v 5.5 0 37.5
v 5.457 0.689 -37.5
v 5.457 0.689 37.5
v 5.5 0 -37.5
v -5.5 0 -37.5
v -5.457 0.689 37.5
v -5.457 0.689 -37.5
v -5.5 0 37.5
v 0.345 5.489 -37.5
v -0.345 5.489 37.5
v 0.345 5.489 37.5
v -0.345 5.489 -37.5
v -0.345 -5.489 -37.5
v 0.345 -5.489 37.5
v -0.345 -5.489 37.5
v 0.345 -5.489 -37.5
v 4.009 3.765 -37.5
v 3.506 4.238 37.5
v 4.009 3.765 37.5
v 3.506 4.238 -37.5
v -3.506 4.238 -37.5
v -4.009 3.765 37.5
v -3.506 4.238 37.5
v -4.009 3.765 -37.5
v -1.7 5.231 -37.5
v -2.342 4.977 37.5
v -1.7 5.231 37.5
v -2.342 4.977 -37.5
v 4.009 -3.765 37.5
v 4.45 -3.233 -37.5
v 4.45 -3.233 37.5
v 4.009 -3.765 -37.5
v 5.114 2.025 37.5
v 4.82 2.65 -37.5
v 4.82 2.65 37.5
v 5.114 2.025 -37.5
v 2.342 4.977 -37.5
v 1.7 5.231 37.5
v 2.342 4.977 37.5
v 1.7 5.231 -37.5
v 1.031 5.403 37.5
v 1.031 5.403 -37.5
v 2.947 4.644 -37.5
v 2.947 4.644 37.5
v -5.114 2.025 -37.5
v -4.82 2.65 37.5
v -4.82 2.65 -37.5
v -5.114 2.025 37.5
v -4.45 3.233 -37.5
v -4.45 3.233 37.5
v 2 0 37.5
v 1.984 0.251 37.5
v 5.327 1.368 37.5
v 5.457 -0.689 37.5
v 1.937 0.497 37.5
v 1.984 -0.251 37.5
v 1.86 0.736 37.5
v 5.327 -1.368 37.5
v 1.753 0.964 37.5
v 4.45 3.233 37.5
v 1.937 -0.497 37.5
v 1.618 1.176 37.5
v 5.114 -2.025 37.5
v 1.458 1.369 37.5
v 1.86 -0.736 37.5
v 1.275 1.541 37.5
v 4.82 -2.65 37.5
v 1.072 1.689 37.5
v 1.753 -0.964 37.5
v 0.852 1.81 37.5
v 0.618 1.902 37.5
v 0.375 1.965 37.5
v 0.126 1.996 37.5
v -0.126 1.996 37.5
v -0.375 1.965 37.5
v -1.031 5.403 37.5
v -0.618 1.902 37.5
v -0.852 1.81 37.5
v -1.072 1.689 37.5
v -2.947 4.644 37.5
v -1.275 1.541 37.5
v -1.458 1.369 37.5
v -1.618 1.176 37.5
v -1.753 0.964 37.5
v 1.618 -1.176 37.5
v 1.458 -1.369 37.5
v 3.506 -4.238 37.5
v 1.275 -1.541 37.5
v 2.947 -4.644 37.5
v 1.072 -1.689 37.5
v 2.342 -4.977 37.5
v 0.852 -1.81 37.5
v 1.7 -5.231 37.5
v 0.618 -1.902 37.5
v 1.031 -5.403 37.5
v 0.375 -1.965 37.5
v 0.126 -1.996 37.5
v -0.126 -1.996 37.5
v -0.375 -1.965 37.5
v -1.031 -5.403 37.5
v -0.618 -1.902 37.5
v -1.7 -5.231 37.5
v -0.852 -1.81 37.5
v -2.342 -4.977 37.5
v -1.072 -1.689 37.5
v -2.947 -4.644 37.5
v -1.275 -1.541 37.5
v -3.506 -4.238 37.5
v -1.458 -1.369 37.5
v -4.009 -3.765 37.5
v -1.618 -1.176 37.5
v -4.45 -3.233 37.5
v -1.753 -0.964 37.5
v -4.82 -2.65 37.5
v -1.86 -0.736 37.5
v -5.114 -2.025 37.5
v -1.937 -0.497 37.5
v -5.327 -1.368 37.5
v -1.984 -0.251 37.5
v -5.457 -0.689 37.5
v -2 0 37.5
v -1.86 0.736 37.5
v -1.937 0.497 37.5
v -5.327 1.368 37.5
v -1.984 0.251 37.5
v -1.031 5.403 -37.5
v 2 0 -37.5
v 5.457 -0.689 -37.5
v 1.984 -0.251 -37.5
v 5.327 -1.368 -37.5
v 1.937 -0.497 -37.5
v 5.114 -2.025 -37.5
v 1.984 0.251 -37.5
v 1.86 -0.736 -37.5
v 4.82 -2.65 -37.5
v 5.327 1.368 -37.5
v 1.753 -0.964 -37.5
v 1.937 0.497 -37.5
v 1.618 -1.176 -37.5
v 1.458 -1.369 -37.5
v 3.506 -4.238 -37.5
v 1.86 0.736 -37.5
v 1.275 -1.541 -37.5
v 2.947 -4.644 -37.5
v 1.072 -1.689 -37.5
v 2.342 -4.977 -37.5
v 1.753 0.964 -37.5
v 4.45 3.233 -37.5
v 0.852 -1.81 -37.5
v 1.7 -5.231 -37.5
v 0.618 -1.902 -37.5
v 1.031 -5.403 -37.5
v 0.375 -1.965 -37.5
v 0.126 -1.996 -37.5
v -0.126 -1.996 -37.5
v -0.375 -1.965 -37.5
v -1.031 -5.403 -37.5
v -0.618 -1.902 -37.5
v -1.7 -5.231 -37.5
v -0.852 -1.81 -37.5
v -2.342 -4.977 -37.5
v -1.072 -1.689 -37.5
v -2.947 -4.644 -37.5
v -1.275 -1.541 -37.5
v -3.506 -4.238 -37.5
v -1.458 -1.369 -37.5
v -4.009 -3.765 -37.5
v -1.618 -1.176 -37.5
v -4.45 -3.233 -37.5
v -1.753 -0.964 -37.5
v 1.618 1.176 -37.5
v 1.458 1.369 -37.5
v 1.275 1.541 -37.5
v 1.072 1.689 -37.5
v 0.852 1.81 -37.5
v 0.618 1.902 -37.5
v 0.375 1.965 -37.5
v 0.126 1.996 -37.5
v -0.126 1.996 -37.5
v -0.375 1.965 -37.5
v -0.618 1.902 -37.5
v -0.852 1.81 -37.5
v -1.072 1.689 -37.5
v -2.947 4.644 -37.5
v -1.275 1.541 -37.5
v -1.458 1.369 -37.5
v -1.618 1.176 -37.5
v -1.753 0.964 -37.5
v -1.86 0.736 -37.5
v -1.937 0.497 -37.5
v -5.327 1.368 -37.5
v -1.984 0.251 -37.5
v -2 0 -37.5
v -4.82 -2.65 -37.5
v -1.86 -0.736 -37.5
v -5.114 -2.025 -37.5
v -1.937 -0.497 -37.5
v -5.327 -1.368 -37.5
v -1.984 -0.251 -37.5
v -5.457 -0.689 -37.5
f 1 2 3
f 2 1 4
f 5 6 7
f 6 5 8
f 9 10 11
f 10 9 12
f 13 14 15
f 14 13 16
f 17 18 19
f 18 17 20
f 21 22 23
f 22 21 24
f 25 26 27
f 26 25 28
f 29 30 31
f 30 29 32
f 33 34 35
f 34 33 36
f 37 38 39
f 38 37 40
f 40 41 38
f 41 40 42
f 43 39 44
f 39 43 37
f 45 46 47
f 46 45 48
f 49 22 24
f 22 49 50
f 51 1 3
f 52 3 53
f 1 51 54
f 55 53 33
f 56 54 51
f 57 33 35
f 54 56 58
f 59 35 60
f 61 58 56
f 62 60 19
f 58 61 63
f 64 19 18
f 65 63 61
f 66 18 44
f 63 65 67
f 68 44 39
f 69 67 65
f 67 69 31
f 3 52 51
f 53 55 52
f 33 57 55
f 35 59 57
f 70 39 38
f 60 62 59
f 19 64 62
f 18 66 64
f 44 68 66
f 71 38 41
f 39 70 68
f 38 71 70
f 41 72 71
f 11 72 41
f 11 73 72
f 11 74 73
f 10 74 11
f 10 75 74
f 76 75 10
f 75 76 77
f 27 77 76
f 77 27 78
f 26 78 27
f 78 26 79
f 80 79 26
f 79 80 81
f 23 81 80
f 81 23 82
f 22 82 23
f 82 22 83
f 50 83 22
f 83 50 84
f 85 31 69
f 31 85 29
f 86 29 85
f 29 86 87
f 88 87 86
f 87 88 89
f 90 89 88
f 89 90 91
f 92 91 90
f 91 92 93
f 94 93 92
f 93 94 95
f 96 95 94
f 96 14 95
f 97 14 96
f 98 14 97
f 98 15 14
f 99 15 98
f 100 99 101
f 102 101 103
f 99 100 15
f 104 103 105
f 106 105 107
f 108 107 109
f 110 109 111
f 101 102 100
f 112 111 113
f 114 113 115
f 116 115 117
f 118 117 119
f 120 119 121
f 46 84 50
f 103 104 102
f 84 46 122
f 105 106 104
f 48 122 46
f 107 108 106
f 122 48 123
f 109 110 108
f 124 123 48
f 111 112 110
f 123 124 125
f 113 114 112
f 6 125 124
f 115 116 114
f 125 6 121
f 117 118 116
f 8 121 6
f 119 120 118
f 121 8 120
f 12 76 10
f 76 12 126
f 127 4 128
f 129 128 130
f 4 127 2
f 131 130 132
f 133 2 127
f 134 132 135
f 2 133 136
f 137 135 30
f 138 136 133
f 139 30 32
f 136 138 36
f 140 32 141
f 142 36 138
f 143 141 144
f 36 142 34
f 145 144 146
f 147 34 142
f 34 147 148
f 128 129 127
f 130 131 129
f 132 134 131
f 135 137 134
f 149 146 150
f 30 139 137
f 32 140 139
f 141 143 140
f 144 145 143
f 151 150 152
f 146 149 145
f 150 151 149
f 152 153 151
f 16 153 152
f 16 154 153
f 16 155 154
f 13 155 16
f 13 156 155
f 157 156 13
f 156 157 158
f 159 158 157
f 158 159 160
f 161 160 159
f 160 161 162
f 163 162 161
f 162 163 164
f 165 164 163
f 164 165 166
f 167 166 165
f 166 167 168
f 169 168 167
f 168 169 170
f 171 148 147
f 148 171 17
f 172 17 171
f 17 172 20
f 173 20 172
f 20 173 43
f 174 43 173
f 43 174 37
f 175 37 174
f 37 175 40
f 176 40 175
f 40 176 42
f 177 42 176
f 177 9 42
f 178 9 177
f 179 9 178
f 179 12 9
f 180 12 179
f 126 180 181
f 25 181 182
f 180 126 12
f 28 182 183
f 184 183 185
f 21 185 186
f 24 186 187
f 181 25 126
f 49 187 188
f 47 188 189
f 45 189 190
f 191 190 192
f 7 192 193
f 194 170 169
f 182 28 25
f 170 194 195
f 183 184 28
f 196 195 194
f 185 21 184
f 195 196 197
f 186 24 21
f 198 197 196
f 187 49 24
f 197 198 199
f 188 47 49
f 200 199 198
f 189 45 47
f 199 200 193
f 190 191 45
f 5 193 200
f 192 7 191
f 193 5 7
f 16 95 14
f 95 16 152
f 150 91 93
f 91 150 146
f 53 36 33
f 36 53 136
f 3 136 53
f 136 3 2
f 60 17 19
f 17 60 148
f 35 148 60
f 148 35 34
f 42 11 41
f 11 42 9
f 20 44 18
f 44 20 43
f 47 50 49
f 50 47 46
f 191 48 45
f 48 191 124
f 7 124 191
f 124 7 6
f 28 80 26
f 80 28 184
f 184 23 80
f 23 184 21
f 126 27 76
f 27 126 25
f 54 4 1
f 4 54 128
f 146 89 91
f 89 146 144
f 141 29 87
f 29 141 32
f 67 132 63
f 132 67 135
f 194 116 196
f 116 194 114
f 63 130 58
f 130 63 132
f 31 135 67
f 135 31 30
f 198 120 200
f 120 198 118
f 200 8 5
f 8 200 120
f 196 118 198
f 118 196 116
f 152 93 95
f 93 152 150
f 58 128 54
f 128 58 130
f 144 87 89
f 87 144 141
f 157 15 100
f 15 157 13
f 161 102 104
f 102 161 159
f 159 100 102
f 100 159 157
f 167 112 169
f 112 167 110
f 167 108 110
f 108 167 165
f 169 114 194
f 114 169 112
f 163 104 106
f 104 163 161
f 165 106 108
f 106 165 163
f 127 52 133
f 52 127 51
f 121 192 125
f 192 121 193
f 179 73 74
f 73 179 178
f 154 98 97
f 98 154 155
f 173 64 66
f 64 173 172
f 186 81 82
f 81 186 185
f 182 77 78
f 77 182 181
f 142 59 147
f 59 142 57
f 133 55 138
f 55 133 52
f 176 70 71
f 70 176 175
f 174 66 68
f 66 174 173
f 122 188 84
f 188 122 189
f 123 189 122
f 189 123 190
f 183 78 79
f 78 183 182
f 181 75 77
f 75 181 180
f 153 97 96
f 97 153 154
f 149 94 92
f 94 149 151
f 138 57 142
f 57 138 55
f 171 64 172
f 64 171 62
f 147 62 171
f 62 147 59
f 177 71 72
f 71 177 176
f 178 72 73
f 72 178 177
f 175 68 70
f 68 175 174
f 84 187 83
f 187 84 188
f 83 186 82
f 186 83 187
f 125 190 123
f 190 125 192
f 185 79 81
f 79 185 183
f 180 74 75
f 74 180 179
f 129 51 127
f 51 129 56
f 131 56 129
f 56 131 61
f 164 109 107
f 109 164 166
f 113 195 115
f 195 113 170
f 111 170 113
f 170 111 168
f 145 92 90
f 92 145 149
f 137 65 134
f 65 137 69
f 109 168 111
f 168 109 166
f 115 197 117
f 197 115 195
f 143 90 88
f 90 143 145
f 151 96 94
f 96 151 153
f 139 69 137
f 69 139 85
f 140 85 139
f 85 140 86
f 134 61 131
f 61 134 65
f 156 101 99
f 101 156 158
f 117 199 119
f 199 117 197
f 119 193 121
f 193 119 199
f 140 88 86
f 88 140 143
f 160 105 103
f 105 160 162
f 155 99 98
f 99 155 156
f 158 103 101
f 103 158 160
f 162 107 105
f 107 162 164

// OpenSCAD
$fn = 50;


difference() {
	union() {
		translate(v = [0, 0, -37.5000000000]) {
			cylinder(h = 75, r = 5.5000000000);
		}
	}
	union() {
		translate(v = [0, 0, -100.0000000000]) {
			cylinder(h = 200, r = 2);
		}
	}
}
